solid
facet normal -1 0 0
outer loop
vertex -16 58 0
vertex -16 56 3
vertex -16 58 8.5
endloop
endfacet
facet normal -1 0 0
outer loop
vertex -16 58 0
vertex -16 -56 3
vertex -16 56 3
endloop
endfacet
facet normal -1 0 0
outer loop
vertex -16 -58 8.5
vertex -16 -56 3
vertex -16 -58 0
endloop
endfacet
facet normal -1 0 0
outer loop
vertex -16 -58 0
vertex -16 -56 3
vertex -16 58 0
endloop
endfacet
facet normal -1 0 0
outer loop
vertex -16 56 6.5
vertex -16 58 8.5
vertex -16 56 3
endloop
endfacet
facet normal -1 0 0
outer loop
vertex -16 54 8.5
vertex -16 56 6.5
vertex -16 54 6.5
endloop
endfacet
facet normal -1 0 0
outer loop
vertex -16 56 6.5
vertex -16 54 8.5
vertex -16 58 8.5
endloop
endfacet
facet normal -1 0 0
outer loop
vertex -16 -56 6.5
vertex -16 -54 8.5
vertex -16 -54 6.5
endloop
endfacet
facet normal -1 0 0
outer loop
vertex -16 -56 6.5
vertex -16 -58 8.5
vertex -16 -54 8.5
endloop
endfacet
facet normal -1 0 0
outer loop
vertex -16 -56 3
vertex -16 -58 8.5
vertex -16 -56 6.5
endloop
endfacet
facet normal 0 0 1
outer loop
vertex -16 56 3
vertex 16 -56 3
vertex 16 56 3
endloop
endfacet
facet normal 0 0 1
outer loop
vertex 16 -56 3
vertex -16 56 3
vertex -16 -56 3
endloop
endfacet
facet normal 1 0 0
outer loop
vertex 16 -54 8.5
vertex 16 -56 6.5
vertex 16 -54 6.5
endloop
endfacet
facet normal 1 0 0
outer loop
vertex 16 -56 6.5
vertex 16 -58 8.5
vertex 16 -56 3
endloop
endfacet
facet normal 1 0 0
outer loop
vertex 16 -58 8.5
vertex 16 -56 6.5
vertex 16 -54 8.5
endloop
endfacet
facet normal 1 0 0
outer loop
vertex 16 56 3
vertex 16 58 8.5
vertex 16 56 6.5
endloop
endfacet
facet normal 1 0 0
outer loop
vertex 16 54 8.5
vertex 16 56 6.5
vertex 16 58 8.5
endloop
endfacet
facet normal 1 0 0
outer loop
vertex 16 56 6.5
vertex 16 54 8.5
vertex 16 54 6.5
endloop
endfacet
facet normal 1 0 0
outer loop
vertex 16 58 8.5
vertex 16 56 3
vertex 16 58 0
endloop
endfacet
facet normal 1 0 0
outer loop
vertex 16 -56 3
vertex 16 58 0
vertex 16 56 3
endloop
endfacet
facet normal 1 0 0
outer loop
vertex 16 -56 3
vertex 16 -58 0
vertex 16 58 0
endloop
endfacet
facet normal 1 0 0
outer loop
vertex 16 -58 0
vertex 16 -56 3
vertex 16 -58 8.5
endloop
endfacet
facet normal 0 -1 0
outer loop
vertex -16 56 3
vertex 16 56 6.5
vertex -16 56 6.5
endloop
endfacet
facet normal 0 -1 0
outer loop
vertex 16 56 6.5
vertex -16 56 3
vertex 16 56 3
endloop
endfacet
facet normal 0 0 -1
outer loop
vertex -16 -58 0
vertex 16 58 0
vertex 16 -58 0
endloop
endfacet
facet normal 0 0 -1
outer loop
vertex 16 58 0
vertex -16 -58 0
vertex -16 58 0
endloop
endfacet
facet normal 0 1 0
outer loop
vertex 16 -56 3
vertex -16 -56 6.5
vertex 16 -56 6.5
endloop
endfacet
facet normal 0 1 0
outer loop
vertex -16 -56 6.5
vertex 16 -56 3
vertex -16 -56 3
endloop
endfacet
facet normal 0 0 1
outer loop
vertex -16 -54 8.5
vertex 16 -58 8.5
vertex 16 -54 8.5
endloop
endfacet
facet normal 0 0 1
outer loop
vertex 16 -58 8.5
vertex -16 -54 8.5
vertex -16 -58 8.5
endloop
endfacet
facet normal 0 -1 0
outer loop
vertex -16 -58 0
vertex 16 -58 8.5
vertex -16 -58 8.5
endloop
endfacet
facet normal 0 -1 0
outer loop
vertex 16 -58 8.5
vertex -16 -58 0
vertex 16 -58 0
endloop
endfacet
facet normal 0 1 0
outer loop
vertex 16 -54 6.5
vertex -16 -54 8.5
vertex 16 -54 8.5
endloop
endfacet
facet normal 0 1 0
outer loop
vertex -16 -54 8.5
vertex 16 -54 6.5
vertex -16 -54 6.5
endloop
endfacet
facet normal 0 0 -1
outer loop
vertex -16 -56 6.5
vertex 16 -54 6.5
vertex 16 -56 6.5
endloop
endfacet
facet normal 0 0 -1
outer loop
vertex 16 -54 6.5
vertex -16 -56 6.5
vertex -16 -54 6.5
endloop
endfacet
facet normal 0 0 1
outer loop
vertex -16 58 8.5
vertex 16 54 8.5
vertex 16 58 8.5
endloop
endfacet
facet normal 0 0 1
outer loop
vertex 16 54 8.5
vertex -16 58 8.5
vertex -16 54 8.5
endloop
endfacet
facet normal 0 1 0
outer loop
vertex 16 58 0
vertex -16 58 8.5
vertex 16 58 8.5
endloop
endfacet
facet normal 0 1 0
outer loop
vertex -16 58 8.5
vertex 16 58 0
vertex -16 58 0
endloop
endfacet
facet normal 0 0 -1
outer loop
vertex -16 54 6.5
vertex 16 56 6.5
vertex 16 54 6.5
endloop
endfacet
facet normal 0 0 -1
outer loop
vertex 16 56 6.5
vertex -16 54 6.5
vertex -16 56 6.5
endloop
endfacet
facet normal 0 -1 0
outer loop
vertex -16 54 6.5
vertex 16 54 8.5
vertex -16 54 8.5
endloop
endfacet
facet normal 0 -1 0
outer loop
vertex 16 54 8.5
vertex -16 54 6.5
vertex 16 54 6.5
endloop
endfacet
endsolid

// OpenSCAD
$fn = 20;

Width = 32;

// Methods
module Holes (x, y) {    
    translate ([x, y, 1.5])
    cylinder (r = 4, h = 2.5);
    
    translate ([x, y, 0])
	cylinder (r = 2, h = 5 + 1);
}

//Post (0, 0, 50);

difference() {
    translate([0, 0, 1.5]) 
    cube ([Width, 112, 3], center = true);
}

translate([-(Width / 2), -58, 0]) 
cube ([Width, 2, 8.5]);

translate([-(Width / 2), -58, 6.5]) 
cube ([Width, 4, 2]);

translate([-(Width / 2), 56, 0]) 
cube ([Width, 2, 8.5]);

translate([-(Width / 2), 54, 6.5]) 
cube ([Width, 3, 2]);
